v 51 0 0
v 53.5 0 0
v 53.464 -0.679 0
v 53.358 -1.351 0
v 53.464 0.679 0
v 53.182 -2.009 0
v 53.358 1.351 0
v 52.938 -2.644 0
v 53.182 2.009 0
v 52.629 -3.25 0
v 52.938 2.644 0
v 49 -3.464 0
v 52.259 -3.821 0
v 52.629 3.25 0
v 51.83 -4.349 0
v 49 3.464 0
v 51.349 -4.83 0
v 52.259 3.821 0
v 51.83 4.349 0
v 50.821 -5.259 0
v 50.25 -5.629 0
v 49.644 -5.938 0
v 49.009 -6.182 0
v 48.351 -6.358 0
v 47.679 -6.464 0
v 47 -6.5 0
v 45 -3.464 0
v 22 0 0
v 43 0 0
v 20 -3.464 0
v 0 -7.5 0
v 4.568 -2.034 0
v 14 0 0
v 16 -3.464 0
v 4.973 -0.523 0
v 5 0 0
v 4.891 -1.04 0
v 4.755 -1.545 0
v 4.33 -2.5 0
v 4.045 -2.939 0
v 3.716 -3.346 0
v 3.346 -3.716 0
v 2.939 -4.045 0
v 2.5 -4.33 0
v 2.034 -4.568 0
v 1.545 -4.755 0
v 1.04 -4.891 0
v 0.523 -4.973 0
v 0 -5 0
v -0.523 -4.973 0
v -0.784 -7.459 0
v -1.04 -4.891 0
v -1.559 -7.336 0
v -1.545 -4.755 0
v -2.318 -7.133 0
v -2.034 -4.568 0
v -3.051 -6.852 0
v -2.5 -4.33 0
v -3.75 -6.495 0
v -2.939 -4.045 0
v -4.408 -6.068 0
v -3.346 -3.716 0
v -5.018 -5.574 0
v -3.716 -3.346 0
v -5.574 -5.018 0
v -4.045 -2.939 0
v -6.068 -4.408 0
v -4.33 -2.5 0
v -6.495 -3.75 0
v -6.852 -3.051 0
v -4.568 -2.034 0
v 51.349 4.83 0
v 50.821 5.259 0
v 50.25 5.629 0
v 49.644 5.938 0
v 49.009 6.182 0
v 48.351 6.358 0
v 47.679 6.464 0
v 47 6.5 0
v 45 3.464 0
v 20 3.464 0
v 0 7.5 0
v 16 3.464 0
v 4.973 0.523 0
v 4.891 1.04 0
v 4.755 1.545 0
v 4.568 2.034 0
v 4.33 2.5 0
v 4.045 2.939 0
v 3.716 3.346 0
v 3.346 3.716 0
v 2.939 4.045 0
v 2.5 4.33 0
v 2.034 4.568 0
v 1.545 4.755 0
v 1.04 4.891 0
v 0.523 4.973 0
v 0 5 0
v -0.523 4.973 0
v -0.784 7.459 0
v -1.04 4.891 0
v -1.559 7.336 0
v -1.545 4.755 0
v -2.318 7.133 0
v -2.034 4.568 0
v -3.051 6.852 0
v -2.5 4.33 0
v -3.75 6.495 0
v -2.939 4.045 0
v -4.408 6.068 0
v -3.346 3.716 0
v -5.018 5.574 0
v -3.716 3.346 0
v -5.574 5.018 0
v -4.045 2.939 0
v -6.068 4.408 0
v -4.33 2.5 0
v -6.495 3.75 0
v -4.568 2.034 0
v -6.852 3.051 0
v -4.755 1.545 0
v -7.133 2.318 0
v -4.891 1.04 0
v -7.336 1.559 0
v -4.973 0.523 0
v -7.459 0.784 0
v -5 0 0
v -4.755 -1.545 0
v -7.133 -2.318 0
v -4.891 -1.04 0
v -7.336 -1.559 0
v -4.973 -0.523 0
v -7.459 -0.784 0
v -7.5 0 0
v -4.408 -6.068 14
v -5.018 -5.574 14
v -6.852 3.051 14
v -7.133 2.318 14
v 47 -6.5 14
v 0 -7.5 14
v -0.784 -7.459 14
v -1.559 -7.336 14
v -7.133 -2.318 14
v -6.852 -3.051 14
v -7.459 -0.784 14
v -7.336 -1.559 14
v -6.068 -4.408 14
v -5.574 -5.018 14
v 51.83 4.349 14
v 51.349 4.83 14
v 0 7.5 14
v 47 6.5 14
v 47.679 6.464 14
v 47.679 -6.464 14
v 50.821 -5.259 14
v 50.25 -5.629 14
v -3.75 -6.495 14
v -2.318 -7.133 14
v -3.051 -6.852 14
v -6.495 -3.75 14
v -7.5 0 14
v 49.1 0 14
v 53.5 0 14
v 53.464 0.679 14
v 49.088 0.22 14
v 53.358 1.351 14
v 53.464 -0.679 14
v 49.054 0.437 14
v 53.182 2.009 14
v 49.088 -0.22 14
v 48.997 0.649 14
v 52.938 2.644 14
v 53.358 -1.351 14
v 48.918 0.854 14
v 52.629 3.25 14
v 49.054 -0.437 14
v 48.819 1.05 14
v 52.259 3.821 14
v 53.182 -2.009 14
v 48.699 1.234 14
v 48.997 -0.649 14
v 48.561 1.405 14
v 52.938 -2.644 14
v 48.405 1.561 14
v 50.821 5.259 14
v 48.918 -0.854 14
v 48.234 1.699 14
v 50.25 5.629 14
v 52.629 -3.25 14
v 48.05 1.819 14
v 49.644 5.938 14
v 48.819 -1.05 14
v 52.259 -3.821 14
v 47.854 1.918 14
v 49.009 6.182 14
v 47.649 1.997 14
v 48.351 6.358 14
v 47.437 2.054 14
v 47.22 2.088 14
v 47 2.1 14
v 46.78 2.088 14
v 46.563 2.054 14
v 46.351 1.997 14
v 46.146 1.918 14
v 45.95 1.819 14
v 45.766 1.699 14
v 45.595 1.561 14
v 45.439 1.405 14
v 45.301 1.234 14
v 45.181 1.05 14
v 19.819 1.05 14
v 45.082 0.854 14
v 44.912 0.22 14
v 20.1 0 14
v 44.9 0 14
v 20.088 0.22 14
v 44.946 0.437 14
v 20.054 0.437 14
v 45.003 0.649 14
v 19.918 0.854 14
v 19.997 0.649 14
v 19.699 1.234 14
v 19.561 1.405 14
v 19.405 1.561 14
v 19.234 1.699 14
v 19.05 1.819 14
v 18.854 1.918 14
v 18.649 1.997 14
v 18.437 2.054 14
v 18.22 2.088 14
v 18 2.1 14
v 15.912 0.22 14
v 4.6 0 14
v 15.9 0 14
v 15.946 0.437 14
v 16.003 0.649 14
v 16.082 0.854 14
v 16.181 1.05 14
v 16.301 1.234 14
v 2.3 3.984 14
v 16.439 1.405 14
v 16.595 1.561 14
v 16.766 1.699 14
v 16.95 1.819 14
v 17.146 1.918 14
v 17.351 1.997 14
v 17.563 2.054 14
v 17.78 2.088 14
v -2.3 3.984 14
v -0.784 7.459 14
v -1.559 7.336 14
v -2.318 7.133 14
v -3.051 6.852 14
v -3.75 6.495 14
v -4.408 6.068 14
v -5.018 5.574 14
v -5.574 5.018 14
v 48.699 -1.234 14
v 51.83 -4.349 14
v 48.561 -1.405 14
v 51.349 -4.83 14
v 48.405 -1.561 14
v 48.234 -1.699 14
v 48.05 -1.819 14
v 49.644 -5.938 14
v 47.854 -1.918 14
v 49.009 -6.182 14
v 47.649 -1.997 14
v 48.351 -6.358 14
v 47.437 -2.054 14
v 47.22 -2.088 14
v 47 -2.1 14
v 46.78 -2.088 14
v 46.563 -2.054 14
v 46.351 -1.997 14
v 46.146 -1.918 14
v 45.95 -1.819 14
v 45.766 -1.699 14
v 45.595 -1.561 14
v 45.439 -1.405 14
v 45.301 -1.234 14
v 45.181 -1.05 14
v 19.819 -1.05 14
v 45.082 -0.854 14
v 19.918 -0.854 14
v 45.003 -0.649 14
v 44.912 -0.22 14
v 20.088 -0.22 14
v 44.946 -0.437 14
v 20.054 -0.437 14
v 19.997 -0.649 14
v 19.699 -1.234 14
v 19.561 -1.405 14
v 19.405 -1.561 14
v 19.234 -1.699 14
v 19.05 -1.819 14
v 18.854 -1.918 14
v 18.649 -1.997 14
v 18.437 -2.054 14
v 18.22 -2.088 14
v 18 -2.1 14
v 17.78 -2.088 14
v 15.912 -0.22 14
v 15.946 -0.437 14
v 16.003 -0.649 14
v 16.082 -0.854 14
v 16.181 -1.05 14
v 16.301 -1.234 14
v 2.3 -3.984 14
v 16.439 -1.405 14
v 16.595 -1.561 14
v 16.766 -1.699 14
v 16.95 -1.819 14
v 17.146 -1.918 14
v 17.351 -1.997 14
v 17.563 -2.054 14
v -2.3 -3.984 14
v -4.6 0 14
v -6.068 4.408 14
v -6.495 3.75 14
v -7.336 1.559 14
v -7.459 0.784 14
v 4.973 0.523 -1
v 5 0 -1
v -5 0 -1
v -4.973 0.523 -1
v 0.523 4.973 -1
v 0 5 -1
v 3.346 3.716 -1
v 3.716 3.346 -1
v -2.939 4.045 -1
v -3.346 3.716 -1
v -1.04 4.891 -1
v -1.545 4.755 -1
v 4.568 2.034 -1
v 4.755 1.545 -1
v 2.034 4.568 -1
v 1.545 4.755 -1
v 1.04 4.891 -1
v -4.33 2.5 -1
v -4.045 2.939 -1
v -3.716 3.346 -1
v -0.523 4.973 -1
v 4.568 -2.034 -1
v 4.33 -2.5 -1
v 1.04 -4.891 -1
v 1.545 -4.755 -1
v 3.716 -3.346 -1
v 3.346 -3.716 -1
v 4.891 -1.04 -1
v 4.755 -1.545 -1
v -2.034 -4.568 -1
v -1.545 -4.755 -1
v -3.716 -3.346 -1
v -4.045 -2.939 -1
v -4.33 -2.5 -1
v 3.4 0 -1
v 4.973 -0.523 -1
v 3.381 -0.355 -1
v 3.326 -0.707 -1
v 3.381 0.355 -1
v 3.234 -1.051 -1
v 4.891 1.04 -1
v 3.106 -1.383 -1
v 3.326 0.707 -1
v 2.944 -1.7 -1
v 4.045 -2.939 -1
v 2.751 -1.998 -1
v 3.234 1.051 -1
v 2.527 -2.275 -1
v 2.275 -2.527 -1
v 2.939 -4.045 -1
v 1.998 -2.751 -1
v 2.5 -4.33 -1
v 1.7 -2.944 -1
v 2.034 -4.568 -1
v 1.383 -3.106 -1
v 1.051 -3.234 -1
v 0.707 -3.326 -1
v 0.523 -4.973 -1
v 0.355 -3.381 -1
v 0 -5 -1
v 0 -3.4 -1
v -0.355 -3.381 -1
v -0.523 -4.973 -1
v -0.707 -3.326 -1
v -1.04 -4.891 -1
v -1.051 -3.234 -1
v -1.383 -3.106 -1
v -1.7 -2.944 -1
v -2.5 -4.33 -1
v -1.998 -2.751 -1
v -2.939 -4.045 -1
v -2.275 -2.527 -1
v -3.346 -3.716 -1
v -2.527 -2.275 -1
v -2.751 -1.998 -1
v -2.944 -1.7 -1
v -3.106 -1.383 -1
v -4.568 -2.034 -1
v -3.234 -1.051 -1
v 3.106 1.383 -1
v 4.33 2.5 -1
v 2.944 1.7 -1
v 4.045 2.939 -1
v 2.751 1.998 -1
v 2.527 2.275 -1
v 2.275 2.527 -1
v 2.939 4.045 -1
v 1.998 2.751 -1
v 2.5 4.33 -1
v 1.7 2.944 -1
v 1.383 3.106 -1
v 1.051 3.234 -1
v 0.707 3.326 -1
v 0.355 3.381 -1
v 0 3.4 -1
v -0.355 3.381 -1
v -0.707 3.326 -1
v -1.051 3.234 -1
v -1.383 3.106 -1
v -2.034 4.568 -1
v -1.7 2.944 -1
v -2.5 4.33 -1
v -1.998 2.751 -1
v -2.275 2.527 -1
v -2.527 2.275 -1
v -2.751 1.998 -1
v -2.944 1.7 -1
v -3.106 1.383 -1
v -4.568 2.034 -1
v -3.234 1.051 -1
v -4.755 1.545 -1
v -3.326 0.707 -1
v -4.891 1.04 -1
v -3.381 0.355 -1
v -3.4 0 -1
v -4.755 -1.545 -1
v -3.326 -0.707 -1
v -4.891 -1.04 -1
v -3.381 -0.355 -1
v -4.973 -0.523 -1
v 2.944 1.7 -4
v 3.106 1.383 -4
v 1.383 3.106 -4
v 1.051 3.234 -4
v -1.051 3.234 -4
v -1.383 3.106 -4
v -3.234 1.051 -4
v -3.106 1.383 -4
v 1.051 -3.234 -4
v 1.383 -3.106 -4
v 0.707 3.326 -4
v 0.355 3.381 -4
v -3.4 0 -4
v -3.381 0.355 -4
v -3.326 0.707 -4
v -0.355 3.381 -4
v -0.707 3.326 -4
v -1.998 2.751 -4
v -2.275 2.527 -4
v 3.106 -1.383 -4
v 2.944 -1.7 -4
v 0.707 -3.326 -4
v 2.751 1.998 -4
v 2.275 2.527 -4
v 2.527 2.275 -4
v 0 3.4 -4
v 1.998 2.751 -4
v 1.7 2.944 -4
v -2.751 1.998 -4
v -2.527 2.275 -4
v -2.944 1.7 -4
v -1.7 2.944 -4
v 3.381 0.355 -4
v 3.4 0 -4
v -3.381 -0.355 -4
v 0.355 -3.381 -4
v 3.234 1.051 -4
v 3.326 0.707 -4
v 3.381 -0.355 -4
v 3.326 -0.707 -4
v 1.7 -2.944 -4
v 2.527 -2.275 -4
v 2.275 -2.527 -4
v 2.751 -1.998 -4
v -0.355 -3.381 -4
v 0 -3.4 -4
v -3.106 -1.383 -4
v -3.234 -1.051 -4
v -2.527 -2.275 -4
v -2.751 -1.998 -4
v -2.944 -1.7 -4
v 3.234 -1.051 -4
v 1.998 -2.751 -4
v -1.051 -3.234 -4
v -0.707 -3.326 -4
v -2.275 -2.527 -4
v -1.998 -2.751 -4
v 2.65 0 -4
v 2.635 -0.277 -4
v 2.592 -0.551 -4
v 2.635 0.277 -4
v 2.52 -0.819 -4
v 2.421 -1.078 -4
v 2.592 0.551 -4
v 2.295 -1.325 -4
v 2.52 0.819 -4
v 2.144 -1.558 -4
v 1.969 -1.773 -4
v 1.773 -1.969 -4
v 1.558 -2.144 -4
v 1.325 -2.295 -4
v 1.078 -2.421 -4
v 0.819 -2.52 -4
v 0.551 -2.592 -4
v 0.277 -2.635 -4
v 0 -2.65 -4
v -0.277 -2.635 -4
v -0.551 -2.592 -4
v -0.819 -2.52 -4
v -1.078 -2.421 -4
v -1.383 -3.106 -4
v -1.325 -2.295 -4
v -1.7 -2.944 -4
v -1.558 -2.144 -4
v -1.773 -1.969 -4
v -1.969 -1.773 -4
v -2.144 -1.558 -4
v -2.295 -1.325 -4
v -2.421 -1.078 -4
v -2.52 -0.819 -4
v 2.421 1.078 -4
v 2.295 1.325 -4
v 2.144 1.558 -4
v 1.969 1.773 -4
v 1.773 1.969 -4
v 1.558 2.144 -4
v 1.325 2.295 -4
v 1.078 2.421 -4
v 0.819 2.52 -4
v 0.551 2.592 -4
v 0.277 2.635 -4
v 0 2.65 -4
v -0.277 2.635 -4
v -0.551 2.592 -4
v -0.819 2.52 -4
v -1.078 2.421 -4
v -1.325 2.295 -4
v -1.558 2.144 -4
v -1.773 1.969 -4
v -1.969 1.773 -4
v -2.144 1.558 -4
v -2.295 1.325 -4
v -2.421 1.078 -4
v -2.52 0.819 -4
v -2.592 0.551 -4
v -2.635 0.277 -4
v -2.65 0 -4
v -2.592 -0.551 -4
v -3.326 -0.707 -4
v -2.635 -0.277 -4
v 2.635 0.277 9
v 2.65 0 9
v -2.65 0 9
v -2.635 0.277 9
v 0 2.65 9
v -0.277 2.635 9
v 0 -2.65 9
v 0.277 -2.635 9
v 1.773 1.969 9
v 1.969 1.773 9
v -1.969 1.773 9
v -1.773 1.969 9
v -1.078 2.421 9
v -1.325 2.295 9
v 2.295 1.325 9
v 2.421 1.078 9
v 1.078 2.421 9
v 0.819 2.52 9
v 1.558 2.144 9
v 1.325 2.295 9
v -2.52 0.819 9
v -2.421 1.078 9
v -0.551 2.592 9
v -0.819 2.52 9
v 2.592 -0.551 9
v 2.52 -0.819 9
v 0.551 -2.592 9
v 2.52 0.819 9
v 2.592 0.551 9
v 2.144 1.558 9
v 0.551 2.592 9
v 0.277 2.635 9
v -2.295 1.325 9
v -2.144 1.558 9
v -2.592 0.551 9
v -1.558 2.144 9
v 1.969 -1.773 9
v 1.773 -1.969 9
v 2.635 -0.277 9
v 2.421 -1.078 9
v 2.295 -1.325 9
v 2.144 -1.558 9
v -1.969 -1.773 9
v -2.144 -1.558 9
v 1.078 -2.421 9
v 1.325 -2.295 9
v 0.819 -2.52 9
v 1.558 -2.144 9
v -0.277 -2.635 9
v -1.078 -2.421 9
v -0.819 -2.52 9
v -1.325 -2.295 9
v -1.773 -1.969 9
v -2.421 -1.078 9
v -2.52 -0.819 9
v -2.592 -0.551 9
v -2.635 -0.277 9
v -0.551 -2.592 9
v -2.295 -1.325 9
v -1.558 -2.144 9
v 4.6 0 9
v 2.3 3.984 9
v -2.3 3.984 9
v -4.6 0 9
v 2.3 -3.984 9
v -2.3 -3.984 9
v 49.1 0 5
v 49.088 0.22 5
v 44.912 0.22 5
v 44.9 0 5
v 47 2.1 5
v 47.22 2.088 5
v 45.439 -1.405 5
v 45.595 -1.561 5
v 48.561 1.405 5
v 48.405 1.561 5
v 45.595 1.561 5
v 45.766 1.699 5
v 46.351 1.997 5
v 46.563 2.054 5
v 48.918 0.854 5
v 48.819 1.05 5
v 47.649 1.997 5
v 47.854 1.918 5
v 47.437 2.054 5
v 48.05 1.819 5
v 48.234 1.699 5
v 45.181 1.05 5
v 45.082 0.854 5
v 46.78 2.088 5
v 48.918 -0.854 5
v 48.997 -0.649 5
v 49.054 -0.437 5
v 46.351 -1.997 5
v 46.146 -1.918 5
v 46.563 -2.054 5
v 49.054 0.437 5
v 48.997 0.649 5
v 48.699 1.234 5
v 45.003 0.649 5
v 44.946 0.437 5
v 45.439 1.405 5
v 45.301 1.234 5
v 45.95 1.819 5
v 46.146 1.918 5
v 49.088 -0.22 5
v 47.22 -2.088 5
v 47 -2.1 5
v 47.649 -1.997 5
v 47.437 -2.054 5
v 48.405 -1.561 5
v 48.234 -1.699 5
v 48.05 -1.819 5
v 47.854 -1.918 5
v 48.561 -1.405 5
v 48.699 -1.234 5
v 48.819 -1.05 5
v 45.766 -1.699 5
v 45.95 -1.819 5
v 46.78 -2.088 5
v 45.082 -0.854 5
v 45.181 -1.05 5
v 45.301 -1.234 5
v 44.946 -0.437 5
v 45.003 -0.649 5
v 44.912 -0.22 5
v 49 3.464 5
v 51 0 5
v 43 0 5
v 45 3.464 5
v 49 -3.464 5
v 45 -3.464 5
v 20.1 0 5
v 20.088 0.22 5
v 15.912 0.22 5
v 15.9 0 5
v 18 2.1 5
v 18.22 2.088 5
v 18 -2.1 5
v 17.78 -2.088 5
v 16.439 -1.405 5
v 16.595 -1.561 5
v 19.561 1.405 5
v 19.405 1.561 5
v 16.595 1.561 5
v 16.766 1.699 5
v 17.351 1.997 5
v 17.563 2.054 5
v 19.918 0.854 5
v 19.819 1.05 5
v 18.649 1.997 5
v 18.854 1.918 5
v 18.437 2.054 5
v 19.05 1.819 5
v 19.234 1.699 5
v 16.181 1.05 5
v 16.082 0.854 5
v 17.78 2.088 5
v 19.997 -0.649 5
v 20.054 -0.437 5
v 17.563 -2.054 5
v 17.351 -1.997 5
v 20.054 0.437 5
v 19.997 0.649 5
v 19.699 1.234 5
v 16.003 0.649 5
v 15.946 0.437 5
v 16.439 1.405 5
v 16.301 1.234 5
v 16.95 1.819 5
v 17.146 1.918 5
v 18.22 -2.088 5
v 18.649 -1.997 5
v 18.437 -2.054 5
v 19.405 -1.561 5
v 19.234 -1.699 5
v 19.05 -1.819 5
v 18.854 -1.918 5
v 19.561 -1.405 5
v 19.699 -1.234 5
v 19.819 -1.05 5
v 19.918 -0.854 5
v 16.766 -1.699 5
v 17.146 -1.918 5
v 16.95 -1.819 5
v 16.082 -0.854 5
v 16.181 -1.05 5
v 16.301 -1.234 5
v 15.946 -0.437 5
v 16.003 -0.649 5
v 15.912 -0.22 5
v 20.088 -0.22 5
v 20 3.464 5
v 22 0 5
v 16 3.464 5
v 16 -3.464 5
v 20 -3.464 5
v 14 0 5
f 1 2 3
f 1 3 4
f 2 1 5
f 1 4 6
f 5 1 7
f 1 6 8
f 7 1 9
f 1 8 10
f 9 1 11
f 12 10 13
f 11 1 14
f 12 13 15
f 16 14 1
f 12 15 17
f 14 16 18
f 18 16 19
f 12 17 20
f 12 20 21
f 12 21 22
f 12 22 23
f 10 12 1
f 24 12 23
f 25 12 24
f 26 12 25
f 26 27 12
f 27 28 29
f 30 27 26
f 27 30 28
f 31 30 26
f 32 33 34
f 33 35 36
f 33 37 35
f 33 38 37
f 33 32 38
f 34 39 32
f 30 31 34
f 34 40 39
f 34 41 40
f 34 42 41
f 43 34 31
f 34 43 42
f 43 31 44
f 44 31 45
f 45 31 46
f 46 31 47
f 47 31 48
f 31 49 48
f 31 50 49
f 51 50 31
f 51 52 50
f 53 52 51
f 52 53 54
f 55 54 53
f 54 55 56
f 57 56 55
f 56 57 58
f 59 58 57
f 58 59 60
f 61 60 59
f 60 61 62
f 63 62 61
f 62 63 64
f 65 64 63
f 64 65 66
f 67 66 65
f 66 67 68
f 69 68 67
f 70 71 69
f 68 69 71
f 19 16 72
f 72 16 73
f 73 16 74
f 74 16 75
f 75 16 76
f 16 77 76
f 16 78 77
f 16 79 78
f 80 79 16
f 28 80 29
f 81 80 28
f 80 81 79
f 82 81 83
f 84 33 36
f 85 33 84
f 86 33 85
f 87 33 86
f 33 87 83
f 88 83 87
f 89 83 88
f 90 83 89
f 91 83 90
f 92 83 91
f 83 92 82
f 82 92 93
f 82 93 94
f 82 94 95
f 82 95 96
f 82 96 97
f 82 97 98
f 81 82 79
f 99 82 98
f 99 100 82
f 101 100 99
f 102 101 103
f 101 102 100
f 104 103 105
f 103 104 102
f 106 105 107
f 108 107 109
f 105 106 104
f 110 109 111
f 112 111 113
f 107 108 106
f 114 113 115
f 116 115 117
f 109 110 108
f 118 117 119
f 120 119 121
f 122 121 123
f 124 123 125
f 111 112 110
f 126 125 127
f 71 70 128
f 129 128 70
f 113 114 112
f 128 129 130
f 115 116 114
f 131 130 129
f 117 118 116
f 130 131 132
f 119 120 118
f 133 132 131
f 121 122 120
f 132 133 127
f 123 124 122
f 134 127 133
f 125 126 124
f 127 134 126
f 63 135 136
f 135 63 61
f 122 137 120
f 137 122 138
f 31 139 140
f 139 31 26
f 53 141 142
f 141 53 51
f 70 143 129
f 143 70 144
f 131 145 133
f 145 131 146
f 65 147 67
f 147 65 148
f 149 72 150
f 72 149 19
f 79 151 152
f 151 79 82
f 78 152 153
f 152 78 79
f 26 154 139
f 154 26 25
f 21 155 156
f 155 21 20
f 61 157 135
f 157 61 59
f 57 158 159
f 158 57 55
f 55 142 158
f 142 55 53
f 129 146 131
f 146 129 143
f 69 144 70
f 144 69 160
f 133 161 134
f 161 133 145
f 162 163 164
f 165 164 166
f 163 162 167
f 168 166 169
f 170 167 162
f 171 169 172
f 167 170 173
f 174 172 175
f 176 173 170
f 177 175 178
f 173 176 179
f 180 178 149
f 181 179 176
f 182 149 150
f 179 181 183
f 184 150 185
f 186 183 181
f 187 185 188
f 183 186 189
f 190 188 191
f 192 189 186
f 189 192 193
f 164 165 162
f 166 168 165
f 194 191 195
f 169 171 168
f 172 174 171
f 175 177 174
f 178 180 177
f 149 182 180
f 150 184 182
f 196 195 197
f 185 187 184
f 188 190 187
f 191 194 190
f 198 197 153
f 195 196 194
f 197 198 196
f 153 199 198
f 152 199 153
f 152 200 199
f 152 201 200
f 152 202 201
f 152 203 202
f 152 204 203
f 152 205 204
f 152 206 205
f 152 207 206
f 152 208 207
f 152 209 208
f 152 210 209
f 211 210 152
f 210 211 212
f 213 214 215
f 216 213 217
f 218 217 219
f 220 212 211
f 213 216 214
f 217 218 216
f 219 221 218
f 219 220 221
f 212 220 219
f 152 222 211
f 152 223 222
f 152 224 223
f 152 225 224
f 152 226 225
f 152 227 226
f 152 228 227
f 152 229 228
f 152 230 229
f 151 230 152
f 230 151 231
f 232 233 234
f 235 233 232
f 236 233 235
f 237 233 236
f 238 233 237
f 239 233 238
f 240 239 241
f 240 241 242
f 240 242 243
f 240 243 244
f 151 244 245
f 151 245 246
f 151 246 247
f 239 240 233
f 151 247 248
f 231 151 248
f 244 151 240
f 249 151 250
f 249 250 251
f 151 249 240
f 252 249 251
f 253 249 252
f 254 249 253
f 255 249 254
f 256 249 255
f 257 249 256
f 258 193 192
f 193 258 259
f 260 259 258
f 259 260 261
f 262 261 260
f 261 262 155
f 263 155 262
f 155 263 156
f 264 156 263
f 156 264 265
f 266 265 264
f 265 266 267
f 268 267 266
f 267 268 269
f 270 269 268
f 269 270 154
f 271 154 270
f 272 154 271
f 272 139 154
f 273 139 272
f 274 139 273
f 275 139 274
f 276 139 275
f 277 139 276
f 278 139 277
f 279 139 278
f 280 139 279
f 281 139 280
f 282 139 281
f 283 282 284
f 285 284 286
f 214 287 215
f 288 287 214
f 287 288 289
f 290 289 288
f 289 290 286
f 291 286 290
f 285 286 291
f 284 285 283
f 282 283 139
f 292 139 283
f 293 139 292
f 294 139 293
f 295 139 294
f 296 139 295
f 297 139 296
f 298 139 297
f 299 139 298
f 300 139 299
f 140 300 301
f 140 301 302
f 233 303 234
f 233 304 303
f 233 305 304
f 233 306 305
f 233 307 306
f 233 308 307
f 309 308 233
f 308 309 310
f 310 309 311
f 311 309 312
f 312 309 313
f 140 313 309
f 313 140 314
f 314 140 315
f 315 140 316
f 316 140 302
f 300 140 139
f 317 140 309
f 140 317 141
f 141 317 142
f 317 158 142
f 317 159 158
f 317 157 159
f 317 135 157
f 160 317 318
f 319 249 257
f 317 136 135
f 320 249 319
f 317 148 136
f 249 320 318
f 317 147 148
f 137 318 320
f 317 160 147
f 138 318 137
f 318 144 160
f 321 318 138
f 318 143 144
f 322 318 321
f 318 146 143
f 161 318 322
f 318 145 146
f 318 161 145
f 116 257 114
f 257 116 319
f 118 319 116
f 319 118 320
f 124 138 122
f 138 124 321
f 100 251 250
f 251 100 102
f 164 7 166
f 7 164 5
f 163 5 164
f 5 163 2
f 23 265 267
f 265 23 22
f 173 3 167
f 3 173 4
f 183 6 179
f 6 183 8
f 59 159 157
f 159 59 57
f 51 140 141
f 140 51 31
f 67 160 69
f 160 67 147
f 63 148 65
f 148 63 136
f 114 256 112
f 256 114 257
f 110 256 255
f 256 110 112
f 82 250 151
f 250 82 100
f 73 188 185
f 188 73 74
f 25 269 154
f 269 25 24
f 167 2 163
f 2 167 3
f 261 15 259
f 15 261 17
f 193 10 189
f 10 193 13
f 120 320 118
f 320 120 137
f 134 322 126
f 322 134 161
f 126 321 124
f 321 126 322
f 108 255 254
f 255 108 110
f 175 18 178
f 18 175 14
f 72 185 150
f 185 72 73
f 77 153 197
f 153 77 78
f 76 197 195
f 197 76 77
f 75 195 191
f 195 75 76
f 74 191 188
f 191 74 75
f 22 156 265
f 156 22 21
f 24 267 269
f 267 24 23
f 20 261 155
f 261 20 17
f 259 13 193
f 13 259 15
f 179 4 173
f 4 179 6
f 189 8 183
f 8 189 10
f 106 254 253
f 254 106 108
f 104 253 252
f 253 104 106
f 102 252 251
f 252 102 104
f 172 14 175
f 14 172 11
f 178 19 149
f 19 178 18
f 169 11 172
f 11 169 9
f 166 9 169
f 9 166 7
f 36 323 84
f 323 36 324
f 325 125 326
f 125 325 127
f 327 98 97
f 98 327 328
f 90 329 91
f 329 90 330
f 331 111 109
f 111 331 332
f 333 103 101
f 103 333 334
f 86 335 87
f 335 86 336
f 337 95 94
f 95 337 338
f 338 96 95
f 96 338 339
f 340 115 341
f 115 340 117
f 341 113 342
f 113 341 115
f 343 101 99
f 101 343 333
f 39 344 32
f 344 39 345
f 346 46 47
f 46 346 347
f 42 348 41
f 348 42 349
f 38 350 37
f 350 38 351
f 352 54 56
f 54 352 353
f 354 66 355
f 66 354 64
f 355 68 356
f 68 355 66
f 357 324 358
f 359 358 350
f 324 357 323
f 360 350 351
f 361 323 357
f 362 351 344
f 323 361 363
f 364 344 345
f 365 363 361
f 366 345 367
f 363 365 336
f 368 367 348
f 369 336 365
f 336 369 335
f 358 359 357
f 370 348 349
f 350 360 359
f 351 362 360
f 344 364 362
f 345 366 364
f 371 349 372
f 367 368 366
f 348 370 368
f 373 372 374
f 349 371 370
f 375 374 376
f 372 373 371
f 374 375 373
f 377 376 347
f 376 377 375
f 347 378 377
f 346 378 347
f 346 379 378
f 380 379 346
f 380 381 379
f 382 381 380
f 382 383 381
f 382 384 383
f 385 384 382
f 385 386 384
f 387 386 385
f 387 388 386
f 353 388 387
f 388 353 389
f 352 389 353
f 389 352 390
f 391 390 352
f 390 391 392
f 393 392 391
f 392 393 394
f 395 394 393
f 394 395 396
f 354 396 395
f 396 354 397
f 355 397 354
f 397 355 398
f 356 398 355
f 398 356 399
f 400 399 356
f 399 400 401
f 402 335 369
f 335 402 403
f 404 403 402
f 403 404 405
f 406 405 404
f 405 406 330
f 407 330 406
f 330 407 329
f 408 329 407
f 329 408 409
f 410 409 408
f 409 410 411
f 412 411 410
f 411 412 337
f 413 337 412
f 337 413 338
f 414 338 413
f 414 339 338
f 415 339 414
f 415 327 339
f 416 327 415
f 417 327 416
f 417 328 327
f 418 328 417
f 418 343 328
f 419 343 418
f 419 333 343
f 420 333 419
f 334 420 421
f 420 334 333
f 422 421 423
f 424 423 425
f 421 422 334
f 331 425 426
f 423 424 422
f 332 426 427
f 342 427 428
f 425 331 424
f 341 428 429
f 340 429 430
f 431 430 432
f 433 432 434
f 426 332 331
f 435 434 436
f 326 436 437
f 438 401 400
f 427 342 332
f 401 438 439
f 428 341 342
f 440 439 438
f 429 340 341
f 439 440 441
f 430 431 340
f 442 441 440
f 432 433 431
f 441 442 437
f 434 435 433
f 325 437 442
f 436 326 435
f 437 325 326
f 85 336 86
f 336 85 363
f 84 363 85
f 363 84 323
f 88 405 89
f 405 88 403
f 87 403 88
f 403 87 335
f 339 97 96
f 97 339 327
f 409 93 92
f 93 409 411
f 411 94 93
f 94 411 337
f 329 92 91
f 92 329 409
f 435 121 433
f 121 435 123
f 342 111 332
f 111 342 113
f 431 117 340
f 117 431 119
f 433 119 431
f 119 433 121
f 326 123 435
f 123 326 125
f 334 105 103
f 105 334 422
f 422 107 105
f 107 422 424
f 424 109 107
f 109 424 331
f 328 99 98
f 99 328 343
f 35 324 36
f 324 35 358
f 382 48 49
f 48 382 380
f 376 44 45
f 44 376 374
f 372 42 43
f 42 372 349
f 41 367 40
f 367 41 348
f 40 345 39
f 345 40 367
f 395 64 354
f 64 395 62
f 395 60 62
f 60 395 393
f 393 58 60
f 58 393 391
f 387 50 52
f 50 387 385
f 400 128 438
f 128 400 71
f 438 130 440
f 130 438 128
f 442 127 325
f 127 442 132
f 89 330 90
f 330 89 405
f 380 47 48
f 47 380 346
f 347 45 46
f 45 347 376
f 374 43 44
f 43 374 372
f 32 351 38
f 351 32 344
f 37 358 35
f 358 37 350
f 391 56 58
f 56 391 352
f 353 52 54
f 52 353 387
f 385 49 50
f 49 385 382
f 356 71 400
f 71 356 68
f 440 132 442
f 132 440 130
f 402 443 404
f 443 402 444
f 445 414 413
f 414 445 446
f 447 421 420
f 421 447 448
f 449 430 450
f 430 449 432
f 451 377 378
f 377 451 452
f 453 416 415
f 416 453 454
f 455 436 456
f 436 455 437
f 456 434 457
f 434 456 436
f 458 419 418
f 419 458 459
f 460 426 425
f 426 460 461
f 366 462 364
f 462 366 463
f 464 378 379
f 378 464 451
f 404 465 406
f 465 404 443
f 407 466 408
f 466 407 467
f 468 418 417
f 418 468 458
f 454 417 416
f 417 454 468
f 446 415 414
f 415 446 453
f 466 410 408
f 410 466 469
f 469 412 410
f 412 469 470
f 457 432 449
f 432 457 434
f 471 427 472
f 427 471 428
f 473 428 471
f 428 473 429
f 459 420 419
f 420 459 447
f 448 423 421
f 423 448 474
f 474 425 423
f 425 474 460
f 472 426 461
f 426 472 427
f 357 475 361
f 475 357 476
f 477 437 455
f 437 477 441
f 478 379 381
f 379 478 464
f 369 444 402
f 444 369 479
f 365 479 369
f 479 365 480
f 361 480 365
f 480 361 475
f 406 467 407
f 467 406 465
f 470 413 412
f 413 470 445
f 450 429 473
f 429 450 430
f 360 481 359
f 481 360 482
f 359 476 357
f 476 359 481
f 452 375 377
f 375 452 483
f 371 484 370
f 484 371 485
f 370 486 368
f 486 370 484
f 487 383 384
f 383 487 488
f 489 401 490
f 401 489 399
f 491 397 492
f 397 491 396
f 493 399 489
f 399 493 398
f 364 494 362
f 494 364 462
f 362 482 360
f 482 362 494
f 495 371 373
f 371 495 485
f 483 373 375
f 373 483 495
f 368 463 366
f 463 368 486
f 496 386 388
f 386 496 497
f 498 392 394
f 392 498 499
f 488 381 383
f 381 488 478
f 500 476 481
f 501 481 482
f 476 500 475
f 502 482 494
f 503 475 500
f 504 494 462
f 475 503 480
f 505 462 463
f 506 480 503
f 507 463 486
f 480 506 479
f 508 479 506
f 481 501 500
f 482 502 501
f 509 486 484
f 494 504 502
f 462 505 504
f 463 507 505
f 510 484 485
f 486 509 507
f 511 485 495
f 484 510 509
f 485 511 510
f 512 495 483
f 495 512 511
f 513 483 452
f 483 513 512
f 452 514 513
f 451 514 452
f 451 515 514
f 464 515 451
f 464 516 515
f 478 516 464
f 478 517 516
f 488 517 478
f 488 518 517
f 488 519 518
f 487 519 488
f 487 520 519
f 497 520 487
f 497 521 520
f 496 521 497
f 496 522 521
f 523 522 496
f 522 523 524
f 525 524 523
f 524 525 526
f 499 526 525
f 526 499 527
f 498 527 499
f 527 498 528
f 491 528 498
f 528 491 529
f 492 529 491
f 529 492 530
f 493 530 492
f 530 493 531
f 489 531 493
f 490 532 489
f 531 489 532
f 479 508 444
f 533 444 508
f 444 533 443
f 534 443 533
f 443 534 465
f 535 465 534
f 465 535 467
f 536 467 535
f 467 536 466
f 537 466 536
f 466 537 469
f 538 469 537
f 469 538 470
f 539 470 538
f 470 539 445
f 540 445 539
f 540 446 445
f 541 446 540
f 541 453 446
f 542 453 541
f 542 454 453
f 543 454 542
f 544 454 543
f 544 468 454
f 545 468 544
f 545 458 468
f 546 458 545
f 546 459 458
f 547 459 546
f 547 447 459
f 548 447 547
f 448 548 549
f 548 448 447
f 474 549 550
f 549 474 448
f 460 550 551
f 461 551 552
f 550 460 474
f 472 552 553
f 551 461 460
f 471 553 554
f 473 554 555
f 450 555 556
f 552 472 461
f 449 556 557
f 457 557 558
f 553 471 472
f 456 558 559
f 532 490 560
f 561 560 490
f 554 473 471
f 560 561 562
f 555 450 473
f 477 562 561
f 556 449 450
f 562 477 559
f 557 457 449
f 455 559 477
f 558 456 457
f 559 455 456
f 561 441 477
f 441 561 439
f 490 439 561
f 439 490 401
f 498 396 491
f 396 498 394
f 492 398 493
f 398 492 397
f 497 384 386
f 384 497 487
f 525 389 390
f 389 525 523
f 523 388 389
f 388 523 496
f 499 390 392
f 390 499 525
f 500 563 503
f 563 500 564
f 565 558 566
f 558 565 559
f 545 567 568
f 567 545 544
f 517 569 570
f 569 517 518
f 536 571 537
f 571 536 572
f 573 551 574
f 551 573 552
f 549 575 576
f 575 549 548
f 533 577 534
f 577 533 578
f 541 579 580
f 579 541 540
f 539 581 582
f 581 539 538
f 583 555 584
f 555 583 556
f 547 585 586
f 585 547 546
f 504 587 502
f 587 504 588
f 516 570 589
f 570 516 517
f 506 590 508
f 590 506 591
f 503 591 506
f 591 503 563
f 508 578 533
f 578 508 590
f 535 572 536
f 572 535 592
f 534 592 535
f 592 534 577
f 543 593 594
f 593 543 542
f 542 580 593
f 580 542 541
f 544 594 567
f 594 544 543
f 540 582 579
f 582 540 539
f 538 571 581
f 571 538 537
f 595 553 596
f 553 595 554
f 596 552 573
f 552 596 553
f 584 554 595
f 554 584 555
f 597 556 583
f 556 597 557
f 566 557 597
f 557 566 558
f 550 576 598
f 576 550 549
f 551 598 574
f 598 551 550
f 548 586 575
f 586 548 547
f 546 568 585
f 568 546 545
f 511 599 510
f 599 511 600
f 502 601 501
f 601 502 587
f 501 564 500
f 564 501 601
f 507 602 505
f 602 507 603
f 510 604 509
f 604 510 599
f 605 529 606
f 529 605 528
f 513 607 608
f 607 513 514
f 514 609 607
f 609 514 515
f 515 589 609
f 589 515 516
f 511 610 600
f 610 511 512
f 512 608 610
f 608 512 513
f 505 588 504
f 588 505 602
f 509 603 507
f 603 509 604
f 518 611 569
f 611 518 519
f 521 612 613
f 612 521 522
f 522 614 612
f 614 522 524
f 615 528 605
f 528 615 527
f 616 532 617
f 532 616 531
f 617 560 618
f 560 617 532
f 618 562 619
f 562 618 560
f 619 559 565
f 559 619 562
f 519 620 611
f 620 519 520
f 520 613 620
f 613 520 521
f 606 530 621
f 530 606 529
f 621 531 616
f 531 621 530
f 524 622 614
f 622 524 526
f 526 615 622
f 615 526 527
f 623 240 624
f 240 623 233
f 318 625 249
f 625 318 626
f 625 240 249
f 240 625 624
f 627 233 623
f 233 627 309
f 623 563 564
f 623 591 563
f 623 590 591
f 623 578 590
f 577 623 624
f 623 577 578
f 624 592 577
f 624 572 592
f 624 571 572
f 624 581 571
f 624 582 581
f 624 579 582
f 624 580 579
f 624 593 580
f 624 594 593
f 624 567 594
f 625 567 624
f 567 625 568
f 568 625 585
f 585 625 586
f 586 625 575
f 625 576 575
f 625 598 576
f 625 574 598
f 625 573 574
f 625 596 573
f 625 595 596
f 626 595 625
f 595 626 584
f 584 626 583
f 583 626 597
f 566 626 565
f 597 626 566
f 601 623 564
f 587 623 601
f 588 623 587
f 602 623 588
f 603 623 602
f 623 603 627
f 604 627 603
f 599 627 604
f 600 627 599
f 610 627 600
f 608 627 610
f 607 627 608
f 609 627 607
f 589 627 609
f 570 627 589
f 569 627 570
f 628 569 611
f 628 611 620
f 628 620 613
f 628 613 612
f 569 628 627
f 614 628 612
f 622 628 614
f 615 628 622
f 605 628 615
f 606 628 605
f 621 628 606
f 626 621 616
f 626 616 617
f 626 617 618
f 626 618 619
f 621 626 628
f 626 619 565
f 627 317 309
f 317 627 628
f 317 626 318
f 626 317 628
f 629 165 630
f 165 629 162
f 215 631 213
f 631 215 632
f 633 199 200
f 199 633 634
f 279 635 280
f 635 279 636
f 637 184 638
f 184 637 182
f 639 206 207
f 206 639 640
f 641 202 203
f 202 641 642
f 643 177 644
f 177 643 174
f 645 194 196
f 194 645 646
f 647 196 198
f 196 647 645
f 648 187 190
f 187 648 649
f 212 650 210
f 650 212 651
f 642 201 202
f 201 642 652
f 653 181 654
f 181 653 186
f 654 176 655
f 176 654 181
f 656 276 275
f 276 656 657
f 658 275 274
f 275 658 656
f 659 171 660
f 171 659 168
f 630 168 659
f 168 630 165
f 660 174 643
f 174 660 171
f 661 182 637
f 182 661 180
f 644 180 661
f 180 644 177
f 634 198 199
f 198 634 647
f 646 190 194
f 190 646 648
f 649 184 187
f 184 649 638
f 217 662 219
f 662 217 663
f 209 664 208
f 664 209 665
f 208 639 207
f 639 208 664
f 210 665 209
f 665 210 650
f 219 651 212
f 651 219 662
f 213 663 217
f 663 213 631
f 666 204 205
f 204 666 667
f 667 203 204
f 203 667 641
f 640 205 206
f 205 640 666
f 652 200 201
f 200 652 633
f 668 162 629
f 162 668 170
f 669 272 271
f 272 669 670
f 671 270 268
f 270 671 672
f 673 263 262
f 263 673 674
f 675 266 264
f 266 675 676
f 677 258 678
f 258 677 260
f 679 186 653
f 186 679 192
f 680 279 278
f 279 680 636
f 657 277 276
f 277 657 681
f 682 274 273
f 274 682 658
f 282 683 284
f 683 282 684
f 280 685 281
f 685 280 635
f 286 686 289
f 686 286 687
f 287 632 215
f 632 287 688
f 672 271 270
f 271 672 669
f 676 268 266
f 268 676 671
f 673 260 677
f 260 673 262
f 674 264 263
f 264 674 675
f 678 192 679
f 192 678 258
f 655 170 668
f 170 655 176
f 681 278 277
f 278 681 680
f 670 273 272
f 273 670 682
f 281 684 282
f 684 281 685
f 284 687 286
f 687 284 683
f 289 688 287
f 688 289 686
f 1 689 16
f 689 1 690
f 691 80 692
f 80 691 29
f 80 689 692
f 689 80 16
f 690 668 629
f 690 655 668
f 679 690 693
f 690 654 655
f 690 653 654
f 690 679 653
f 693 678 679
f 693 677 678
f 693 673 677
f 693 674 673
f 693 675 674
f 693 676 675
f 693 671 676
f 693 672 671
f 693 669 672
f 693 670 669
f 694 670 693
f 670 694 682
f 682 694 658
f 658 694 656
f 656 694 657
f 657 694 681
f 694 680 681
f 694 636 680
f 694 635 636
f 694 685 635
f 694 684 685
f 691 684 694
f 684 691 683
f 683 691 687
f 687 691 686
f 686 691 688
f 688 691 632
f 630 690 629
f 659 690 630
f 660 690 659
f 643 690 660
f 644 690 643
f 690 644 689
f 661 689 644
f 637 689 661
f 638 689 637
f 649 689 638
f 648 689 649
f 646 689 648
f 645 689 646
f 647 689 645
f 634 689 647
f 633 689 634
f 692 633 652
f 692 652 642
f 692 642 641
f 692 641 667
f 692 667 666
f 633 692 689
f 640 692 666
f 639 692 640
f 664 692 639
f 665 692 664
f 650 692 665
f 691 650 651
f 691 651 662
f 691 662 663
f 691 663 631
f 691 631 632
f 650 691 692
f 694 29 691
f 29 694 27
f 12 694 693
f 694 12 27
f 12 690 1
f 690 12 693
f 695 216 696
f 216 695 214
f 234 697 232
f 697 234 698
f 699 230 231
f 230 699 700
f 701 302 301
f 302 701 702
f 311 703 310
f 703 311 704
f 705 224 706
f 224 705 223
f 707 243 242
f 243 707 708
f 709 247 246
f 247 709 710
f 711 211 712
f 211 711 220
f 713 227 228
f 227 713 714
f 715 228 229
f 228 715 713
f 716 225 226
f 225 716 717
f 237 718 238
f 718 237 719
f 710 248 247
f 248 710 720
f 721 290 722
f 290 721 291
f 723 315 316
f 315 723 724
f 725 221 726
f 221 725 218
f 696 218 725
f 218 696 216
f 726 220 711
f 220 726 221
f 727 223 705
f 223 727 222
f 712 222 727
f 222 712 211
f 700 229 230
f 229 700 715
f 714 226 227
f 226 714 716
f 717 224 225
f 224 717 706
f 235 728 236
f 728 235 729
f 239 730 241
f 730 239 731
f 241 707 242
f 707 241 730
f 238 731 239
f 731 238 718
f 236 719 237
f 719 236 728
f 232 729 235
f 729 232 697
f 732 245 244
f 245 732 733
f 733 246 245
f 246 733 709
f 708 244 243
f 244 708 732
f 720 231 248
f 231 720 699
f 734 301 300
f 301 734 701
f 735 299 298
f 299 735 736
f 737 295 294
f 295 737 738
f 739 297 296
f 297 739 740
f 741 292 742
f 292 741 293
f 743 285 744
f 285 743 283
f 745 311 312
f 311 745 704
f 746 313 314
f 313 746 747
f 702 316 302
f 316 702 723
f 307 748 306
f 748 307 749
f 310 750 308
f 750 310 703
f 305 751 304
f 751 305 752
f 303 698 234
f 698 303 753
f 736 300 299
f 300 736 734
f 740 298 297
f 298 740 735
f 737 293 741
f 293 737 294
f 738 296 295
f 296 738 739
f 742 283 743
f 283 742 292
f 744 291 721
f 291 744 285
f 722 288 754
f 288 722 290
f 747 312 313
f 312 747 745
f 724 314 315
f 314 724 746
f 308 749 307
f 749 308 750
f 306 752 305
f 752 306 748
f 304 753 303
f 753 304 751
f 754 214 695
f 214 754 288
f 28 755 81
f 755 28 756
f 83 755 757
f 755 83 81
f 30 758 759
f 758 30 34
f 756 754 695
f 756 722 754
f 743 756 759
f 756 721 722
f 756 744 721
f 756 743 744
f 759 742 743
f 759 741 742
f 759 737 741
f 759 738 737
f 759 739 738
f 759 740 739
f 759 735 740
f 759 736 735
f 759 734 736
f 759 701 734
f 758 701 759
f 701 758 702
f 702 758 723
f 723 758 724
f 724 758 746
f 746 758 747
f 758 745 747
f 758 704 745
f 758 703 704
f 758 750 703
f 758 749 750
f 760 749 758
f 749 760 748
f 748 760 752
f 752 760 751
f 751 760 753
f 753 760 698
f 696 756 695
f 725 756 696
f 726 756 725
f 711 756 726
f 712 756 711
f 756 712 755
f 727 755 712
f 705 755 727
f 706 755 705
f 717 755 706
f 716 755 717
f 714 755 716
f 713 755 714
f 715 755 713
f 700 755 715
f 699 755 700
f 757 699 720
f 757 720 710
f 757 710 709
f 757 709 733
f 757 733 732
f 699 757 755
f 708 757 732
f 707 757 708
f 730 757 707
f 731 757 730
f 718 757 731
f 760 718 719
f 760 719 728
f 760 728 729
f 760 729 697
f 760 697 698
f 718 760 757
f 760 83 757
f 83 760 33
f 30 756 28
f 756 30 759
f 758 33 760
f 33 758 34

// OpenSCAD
$fn=60;
h=14;

module body() {
    difference() {
        union() {
            hull() {
                cylinder(d=15, h=h);
                translate([47,0,0]) cylinder(d=13, h=h); 
            }
            translate([0,0,-1]) cylinder(d=10,h=1);
            translate([0,0,-4]) cylinder(d=6.8,h=4);
        }
    
        translate([0,0,-4]) cylinder(d=5.3, h=h+4);
        translate([0,0,h-5]) cylinder($fn=6,d=9.2,h=5);
        
        translate([47,0,0]) cylinder(d=4.2, h=h); 
        translate([47,0,0]) cylinder($fn=6.2,d=8, h=5); 
        
        translate([18,0,0]) cylinder(d=4.2, h=h); 
        translate([18,0,0]) cylinder($fn=6.2,d=8, h=5); 
    }
}

body();
